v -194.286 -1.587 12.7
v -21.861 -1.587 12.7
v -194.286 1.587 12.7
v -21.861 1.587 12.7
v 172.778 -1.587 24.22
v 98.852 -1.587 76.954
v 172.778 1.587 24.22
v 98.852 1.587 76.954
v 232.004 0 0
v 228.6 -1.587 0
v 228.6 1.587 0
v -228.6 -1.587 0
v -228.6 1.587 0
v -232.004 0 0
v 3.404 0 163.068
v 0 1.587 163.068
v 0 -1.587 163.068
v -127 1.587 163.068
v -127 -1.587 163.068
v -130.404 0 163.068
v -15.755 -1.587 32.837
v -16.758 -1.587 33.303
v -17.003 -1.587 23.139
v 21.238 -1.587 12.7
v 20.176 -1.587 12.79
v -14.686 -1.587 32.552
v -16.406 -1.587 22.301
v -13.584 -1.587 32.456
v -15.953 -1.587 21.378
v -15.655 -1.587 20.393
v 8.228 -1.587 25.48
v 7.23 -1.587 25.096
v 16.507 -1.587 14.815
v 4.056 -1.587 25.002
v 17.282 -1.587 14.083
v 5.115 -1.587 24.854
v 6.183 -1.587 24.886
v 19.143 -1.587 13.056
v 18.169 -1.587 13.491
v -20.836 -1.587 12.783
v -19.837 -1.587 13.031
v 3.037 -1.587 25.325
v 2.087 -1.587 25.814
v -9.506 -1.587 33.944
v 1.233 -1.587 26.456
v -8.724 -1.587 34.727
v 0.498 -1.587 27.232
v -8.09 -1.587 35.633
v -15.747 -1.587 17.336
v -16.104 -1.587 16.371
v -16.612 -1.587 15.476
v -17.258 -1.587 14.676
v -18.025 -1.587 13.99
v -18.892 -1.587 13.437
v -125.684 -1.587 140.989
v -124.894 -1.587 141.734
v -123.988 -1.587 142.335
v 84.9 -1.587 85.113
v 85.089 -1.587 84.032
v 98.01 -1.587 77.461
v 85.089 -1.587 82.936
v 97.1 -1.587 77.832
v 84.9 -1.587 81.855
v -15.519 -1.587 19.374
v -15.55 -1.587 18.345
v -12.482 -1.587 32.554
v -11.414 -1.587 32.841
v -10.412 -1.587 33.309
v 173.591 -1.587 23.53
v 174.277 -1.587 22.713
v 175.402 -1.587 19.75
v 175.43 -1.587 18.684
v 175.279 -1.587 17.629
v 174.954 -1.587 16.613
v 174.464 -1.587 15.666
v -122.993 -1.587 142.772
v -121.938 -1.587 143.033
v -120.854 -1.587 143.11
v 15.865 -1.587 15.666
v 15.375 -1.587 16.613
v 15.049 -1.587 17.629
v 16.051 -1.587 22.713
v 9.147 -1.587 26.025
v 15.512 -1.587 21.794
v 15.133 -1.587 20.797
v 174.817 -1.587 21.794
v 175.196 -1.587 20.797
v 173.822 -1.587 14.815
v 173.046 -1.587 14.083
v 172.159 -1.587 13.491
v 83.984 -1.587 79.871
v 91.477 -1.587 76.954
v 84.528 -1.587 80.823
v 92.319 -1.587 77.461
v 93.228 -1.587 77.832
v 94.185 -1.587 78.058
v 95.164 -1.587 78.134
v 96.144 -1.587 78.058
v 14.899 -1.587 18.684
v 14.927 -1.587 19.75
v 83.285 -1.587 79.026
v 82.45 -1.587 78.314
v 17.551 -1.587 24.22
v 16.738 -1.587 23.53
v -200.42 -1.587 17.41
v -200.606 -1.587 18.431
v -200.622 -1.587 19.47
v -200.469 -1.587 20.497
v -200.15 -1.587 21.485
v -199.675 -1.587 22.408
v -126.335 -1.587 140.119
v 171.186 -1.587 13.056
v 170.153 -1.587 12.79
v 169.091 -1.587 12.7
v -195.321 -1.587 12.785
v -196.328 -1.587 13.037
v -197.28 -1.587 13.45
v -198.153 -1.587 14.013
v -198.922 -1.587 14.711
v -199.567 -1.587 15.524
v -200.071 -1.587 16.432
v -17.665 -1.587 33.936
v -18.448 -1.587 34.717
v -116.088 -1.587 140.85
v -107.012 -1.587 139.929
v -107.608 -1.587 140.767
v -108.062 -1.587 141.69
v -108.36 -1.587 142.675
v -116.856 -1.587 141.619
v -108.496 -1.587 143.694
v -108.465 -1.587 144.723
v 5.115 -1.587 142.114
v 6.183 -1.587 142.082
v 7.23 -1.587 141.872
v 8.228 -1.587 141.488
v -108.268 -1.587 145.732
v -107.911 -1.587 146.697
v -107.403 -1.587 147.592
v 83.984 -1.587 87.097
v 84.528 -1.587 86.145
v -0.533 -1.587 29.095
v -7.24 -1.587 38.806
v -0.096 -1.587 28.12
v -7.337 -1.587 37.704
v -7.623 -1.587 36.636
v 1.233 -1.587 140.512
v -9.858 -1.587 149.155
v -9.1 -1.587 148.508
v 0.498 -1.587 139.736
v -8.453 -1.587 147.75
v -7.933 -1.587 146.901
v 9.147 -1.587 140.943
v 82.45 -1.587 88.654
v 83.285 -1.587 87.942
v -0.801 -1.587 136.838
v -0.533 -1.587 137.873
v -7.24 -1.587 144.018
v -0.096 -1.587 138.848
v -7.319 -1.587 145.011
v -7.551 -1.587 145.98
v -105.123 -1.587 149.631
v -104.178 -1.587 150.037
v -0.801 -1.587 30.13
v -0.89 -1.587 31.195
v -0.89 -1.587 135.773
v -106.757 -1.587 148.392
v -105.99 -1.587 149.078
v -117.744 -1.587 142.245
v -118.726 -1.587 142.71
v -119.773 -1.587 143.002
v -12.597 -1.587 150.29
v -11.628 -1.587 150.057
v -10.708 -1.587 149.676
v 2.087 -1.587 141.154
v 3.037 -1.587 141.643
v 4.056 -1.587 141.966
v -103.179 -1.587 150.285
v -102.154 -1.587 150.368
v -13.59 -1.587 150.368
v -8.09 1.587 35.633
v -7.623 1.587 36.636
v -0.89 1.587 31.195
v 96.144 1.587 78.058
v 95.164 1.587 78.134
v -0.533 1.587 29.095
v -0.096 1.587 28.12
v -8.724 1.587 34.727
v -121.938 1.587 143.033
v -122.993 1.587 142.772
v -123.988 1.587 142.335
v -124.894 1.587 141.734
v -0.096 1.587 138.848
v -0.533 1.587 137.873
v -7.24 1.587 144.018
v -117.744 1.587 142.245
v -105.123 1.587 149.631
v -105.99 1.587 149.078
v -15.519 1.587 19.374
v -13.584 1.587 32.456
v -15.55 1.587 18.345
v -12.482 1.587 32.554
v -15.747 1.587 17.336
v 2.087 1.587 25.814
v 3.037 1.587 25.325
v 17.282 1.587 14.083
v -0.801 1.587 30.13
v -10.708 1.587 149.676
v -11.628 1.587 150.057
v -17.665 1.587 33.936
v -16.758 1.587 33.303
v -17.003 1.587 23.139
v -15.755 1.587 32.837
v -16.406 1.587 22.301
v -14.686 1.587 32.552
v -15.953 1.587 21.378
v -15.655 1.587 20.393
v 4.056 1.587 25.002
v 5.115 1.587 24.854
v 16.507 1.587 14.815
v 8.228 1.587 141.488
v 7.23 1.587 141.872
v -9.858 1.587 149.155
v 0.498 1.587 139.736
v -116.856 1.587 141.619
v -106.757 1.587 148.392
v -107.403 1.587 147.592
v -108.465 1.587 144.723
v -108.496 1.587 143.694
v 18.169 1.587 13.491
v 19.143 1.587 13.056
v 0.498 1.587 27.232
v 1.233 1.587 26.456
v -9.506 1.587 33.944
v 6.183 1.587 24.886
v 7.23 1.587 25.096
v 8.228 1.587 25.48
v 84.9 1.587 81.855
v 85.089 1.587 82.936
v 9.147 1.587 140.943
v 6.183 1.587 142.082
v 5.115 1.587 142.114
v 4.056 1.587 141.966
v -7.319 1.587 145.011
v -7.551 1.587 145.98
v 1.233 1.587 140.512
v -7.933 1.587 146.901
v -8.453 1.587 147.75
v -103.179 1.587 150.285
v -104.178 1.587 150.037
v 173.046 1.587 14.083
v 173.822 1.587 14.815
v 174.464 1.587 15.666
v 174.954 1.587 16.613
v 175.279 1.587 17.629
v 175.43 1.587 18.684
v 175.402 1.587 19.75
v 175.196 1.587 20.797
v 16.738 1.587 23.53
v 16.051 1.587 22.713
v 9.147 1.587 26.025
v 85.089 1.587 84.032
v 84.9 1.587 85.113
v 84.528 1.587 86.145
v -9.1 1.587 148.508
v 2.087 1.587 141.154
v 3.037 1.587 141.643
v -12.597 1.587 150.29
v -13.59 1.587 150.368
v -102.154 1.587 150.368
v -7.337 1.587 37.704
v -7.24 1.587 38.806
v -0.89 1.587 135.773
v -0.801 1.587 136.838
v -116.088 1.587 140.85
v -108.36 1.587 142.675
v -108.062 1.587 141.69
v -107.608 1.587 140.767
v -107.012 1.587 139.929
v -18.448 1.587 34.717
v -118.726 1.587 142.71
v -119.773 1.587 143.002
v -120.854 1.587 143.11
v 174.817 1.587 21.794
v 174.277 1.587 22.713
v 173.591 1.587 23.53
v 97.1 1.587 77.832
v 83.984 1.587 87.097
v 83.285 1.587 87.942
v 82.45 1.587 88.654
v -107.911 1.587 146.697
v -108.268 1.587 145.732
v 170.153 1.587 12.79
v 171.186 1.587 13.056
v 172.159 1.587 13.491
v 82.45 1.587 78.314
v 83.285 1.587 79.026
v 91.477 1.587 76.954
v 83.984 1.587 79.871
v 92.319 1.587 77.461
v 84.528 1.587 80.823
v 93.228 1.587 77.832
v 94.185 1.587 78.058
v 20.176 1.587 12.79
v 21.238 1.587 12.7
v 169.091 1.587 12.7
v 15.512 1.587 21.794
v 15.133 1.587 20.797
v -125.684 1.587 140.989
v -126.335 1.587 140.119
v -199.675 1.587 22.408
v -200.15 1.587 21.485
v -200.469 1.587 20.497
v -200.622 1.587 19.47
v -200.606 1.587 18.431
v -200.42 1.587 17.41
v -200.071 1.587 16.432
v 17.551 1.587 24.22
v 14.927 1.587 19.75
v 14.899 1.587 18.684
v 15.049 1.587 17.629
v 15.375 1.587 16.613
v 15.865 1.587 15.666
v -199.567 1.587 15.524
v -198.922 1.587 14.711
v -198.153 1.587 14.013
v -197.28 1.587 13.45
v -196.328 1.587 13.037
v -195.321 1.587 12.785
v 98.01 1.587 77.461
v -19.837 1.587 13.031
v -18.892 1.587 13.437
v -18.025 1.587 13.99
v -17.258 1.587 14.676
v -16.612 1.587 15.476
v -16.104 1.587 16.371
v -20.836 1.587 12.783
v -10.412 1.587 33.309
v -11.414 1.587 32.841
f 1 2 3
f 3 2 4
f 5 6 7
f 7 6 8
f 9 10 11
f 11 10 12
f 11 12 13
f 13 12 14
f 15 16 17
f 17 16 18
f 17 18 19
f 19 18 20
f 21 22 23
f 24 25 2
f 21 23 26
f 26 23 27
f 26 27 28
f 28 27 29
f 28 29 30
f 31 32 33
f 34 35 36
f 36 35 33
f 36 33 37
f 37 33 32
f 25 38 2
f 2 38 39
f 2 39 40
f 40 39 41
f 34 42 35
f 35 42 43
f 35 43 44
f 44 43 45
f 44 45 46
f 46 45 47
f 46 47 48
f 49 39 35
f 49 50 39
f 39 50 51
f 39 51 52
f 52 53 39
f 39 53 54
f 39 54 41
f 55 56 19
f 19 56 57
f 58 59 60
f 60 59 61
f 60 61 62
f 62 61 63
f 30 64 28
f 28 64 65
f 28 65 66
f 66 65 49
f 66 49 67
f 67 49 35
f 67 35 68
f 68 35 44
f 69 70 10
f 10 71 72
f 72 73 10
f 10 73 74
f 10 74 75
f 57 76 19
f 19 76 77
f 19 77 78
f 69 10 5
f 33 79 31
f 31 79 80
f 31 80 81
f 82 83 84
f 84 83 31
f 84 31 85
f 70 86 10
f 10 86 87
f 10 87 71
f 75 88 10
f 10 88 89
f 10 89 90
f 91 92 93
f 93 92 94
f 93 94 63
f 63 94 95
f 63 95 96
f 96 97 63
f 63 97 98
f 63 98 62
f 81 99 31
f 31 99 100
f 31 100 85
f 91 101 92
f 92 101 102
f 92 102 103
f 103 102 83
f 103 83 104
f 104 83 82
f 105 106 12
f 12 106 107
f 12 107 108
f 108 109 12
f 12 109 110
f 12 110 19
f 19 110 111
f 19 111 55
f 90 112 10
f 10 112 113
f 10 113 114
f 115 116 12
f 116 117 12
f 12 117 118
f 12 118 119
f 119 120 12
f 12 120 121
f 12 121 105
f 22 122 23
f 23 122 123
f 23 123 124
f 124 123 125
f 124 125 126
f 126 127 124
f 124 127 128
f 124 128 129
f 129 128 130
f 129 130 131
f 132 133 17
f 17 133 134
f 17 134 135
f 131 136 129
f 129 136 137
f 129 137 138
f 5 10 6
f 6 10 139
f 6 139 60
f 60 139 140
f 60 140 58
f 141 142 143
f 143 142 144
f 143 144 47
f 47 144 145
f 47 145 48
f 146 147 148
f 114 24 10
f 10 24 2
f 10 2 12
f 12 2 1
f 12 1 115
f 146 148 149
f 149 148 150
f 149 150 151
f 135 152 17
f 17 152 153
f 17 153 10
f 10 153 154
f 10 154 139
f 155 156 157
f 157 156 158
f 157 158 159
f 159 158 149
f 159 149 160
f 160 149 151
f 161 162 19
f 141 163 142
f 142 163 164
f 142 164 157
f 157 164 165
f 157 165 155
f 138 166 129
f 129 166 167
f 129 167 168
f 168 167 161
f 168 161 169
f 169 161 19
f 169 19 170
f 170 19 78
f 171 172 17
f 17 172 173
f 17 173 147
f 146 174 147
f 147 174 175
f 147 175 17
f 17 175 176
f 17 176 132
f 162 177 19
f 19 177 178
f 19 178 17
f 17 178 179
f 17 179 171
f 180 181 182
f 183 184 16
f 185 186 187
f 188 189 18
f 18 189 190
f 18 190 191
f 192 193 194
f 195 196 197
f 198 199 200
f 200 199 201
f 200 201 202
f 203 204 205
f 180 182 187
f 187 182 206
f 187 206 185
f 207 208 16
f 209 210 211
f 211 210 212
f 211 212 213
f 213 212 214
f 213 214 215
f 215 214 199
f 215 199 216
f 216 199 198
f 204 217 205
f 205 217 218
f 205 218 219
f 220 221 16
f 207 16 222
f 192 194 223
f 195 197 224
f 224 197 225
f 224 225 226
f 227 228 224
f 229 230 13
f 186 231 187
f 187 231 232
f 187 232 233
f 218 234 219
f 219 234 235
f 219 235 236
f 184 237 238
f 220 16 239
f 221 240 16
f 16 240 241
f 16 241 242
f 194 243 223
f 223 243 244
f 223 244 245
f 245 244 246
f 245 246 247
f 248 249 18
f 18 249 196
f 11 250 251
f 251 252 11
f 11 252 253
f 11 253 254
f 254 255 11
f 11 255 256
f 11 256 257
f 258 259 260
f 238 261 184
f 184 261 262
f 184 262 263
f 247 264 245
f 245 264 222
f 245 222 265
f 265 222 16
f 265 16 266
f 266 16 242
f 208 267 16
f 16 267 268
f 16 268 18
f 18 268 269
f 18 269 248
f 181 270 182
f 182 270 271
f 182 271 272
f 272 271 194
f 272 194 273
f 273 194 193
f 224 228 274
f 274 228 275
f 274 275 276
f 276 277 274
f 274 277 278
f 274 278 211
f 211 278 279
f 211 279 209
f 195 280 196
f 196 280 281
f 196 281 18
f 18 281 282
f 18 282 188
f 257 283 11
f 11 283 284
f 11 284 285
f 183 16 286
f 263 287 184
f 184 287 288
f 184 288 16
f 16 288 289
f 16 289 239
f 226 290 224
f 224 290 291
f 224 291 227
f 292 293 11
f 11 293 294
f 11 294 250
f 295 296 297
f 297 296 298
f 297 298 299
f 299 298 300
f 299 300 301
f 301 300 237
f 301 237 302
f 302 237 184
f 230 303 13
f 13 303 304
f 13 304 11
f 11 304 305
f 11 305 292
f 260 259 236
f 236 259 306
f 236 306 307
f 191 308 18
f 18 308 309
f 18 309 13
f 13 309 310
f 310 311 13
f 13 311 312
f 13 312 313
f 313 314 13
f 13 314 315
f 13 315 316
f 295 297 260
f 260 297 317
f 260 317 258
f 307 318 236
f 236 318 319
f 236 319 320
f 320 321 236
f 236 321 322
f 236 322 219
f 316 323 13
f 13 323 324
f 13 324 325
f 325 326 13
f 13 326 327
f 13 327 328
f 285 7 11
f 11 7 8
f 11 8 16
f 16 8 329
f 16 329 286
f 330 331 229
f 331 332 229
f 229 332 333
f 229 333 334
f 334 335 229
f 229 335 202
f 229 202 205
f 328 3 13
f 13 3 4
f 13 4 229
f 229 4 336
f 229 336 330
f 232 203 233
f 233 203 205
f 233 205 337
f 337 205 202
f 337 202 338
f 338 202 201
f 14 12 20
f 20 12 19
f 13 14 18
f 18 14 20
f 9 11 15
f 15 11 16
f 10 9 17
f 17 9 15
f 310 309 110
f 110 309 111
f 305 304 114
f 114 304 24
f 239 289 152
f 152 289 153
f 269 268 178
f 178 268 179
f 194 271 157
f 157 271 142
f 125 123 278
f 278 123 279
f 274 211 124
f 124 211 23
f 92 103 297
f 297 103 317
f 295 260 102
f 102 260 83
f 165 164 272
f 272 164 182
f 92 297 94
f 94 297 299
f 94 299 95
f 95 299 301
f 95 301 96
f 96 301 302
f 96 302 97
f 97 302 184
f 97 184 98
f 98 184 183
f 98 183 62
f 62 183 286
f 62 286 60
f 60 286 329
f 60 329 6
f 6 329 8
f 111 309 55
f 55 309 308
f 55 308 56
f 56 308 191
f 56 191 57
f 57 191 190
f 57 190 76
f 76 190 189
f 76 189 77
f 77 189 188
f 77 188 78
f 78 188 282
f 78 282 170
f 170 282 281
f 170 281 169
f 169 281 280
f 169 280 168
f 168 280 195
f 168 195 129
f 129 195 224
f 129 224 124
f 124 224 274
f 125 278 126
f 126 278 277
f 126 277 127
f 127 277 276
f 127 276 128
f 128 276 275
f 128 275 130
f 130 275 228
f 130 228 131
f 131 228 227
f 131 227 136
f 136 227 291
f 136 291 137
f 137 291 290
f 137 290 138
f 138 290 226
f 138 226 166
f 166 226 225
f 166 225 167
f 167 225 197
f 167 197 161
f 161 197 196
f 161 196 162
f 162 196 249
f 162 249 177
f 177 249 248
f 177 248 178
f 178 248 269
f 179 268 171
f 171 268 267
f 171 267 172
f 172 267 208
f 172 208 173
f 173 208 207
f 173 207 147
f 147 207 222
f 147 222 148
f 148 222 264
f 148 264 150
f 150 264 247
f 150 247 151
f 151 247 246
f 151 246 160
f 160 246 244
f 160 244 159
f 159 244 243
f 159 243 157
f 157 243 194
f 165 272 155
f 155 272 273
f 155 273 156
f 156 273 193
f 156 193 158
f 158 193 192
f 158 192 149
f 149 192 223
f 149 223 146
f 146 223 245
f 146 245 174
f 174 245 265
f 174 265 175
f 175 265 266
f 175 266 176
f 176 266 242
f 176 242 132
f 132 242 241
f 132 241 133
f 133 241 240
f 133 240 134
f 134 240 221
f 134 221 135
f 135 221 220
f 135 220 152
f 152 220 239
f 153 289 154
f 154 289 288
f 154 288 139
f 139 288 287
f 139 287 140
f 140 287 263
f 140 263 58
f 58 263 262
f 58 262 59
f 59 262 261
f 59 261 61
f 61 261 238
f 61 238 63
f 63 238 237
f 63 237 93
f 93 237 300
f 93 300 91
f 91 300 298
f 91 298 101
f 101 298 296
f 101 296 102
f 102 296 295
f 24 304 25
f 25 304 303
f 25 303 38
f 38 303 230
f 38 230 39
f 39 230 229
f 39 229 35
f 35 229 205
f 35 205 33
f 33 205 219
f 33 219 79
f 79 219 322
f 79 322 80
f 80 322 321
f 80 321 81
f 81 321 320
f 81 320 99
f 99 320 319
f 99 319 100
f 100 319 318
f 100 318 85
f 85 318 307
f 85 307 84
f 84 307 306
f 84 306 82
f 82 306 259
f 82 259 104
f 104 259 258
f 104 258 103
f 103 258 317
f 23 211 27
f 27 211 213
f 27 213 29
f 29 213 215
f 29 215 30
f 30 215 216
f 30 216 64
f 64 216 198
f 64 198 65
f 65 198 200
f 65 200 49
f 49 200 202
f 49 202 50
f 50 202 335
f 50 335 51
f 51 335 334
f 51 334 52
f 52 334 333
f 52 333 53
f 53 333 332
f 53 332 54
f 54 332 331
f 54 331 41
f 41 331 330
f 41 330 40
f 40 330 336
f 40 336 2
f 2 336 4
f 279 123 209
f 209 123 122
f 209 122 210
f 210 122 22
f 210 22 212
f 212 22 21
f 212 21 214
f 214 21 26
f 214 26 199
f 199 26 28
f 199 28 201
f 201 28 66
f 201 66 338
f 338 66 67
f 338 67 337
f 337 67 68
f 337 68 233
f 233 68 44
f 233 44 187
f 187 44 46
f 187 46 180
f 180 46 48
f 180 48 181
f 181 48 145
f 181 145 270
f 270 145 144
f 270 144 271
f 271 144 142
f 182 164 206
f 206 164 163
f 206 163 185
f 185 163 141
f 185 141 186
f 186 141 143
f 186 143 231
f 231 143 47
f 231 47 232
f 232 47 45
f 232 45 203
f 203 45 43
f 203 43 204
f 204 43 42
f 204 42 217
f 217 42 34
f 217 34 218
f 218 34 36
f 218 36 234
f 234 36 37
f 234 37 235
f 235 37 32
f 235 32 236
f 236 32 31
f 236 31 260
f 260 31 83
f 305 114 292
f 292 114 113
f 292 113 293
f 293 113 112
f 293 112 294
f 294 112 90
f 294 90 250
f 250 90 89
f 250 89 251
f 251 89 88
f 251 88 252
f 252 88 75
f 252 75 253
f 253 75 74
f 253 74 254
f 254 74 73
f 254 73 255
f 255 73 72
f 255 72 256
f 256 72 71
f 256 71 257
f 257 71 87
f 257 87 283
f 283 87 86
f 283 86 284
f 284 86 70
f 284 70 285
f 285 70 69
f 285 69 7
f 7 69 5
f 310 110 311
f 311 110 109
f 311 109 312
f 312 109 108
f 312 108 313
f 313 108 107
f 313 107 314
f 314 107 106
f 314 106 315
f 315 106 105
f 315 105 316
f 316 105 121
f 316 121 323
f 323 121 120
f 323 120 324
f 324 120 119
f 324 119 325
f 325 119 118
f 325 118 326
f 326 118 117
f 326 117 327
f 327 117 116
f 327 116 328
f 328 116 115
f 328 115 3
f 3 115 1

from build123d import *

# Parameters (mm, degrees)
BOSS_EXTRUDE1_DEPTH      = 1.5875
BOSS_EXTRUDE1_DEPTH_BACK = 1.5875
CUT_EXTRUDE2_DEPTH       = 284.597068155
BOSS_EXTRUDE2_DEPTH      = 3.175
FILLET1_R                = 6.35
FILLET2_R                = 6.35


with BuildPart() as part:
    # CS path → Boss-Extrude1 (new, two sides: drawn at the far end of the back side and taken through both)
    with BuildSketch(Plane(origin=(0, 0, 0), x_dir=(1, 0, 0), z_dir=(0, 1, 0)).offset(-BOSS_EXTRUDE1_DEPTH_BACK)):
        Polygon((-228.6, 0), (228.6, 0), (0, -163.068), (-127, -163.068), align=None)
    extrude(amount=BOSS_EXTRUDE1_DEPTH + BOSS_EXTRUDE1_DEPTH_BACK)

    # Sweep1: sweep along a curve in space
    with BuildLine() as sweep1_path:
        Line((-228.6, 1.5875, 0), (-127, 1.5875, 163.068))
    # Sketch10 → Sweep1 (sweep)
    with BuildSketch(Plane.XY.offset(163.068)):
        Polygon((-127, 1.5875), (-130.404404736, 0), (-127, -1.5875), align=None)
    sweep(path=sweep1_path.line)

    # Sweep2: sweep along a curve in space
    with BuildLine() as sweep2_path:
        Line((0, 1.5875, 163.068), (228.6, 1.5875, 0))
    # Sketch11 → Sweep2 (sweep)
    with BuildSketch(Plane.XY.offset(163.068)):
        Polygon((0, 1.5875), (3.404404736, 0), (0, -1.5875), align=None)
    sweep(path=sweep2_path.line)

    # Sketch2 → Cut-Extrude2 (cut, through all)
    with BuildSketch(Plane(origin=(0, 1.5875, 0), x_dir=(1, 0, 0), z_dir=(0, 1, 0))):
        Polygon((-205.723873178, -12.7), (188.927034488, -12.7), (-4.065488877, -150.368), (-119.94941835, -150.368), align=None)
    extrude(amount=-CUT_EXTRUDE2_DEPTH, mode=Mode.SUBTRACT)

    # Sketch3 → Boss-Extrude2 (add)
    with BuildSketch(Plane(origin=(0, 1.5875, 0), x_dir=(1, 0, 0), z_dir=(0, 1, 0))):
        Polygon((-8.215599111, -12.7), (-121.714648415, -147.534805746), (-119.94941835, -150.368), (-115.799308116, -150.368), (-7.240488877, -21.402097696), (-7.240488877, -150.368), (-4.065488877, -150.368), (-0.890488877, -148.103166667), (-0.890488877, -18.864845516), (89.697119406, -83.484006092), (95.164426205, -79.583993908), (1.401817922, -12.7), align=None)
    extrude(amount=-BOSS_EXTRUDE2_DEPTH)

    # Fillet1
    fillet1_edges = [part.edges().sort_by_distance(p)[0] for p in [
        (-7.240488877, 0, 150.368),
        (-7.240488877, 0, 21.402097696),
        (-115.799308116, 0, 150.368),
        (-121.714648415, 0, 147.534805746),
        (-8.215599111, 0, 12.7),
        (1.401817922, 0, 12.7),
        (95.164426205, 0, 79.583993908),
        (89.697119406, 0, 83.484006092),
        (-0.890488877, 0, 18.864845516),
        (-0.890488877, 0, 148.103166667),
    ]]
    fillet(fillet1_edges, radius=FILLET1_R)

    # Fillet2
    fillet2_edges = [part.edges().sort_by_distance(p)[0] for p in [
        (-205.723873178, 0, 12.7),
        (188.927034488, 0, 12.7),
    ]]
    fillet(fillet2_edges, radius=FILLET2_R)


solid = part.part
